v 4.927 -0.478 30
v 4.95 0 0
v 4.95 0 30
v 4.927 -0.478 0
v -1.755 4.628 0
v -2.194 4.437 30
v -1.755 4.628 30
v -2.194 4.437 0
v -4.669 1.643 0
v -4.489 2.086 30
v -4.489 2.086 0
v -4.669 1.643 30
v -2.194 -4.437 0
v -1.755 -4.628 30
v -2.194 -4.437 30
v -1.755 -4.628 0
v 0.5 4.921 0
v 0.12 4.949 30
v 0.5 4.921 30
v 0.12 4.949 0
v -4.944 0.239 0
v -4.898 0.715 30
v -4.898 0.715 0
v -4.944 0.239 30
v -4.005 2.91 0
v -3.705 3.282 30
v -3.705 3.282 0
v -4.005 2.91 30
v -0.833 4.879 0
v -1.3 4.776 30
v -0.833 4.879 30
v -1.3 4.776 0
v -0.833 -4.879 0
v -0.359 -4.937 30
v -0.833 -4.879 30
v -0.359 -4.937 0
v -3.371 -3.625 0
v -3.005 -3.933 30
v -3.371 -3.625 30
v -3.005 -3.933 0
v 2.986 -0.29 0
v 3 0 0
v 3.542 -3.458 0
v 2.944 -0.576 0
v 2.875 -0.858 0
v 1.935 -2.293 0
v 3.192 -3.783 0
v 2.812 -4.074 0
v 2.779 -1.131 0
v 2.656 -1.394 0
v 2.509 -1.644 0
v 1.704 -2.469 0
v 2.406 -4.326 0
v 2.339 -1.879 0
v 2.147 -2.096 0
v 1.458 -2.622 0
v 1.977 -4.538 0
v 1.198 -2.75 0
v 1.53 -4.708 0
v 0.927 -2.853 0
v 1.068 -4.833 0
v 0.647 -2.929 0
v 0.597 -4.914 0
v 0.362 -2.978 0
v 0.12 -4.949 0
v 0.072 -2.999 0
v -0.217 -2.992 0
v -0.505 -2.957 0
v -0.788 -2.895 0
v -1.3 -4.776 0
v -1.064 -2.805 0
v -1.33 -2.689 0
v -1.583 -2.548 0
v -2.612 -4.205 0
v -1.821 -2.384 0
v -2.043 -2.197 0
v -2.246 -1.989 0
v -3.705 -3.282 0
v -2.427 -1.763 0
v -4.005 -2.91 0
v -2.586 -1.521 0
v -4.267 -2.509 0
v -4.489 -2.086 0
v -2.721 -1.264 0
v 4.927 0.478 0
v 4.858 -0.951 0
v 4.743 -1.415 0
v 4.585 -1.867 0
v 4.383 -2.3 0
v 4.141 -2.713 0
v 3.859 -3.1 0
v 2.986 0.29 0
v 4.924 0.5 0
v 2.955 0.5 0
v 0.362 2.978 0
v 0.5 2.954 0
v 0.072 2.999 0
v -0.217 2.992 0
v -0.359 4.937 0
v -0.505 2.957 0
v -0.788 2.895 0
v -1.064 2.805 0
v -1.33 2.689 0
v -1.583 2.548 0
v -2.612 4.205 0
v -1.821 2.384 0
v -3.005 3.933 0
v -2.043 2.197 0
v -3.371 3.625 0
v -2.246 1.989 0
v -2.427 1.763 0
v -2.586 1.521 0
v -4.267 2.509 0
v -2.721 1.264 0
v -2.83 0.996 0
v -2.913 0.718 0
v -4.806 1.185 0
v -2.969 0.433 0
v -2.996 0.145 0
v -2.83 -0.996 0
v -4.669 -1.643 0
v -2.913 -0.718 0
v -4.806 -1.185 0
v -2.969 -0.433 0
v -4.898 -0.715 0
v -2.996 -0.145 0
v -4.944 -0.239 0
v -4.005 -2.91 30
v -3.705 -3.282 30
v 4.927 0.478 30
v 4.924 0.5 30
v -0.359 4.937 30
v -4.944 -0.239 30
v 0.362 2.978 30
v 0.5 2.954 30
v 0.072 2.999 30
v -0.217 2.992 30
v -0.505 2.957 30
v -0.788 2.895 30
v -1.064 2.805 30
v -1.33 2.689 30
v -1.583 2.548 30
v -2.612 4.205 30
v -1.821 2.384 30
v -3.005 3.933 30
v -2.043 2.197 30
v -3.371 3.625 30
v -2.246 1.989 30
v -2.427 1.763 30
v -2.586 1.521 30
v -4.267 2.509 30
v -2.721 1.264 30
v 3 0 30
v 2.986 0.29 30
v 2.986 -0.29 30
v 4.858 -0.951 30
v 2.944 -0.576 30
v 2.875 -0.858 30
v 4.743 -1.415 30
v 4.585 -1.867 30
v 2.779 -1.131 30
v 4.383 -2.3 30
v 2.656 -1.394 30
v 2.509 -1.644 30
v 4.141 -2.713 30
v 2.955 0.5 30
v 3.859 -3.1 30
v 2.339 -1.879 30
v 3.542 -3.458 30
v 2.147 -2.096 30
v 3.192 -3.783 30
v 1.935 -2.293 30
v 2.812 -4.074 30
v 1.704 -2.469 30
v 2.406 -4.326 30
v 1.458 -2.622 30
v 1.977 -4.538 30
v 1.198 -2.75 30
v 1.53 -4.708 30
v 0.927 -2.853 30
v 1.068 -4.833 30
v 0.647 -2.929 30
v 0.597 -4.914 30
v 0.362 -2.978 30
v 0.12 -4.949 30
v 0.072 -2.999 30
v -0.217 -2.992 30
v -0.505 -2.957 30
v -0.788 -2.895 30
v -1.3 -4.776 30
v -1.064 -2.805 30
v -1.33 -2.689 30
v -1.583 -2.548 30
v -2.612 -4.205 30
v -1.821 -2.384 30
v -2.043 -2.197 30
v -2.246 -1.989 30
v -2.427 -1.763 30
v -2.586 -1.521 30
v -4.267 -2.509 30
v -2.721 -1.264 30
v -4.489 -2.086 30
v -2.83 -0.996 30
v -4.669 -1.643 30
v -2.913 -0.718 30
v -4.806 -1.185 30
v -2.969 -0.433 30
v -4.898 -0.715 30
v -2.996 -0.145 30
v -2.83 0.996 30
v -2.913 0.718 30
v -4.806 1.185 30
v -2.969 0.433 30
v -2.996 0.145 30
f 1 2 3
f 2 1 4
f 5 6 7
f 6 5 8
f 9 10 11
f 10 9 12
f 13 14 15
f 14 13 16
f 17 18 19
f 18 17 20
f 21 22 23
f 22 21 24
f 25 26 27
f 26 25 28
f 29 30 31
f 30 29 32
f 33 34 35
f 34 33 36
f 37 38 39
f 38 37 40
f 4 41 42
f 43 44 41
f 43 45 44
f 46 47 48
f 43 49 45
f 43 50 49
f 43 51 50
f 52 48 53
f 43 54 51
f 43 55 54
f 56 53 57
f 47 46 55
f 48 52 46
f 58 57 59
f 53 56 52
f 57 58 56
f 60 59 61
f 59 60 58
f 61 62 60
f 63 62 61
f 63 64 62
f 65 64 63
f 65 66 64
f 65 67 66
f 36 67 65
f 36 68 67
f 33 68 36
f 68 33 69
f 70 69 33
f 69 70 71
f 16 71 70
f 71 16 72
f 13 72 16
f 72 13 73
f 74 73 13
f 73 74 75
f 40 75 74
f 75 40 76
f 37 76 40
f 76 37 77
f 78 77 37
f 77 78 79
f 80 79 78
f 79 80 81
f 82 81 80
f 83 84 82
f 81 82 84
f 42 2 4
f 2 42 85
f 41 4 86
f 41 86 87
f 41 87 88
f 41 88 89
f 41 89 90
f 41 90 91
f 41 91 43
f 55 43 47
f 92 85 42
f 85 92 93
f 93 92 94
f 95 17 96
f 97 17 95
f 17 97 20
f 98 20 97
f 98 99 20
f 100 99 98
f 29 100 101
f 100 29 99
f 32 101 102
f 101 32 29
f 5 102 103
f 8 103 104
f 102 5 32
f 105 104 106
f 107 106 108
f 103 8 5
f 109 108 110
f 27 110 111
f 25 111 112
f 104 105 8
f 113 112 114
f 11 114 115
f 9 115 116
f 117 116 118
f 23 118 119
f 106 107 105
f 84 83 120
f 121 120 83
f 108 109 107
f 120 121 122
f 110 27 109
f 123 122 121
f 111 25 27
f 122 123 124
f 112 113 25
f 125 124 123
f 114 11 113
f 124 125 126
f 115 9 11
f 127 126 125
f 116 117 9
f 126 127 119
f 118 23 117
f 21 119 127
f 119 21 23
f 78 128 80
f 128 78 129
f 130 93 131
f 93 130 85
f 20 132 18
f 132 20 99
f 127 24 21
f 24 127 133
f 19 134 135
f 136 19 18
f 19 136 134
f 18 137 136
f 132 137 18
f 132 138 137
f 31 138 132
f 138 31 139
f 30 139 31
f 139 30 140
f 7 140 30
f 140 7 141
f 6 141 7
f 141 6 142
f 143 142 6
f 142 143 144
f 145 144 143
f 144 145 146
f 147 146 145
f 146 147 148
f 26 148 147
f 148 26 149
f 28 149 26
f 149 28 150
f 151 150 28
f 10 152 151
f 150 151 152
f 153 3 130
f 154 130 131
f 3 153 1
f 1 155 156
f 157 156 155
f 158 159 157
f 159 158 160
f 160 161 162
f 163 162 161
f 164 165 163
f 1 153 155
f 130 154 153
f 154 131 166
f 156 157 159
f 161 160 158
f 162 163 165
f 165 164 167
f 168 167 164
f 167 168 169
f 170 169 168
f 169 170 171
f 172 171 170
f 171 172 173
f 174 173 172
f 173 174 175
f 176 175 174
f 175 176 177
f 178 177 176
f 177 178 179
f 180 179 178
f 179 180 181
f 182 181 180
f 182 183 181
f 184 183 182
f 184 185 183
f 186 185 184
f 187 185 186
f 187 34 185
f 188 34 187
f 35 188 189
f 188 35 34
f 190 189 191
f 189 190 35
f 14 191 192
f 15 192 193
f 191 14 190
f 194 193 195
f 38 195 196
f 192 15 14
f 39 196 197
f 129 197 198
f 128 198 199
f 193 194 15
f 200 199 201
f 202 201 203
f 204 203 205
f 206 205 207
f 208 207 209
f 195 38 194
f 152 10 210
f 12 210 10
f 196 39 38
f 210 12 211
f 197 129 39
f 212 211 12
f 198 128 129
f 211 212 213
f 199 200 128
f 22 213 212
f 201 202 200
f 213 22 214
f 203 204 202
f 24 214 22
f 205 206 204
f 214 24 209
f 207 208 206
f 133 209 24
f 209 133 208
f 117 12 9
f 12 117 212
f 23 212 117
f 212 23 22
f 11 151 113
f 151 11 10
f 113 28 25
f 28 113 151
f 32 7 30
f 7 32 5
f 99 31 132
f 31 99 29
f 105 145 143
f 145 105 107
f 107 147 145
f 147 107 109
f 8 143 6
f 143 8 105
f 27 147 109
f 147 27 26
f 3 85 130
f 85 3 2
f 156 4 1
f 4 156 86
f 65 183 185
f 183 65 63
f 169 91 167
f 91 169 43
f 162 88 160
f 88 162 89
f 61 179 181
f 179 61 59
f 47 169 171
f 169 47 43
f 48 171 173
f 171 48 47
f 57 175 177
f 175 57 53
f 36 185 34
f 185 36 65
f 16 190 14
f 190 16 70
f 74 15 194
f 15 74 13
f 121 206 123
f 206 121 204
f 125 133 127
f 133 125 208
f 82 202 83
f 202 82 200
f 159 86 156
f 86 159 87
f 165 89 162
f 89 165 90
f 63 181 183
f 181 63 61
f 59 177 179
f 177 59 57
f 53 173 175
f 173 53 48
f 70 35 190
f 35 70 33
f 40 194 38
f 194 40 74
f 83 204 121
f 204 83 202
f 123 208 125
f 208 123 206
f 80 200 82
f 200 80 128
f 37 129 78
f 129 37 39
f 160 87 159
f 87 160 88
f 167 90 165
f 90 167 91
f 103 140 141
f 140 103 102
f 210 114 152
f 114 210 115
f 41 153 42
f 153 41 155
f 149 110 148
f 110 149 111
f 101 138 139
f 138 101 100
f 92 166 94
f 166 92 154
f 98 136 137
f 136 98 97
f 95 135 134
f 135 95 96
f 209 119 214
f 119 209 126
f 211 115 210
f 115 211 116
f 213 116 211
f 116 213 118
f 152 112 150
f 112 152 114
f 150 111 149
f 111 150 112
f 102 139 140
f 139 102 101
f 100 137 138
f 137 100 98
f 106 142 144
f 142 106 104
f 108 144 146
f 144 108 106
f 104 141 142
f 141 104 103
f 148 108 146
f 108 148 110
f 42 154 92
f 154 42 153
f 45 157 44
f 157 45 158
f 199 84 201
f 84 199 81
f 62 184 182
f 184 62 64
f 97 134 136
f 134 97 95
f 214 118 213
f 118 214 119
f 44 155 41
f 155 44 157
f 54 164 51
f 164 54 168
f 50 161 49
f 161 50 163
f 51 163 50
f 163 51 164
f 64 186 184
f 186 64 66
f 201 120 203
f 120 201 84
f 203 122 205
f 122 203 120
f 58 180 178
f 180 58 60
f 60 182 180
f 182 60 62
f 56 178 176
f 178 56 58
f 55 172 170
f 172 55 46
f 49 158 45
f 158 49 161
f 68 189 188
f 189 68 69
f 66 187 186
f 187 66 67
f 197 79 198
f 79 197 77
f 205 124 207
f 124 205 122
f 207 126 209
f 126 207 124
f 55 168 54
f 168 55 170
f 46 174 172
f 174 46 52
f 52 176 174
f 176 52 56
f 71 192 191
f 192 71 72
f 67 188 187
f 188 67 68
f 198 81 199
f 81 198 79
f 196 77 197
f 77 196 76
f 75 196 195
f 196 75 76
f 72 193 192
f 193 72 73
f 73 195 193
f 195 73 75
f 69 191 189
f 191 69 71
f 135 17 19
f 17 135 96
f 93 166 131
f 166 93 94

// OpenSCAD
center=6;
line=0.65;
dia = (center+6*line)/2;
difference(){
cylinder(r=dia, h=30, $fn=65);
translate([0,0,-1])cylinder(r=center/2, h=32, $fn=65);
translate([0.5,0.5,-1])cube([10,10,40]);
}
